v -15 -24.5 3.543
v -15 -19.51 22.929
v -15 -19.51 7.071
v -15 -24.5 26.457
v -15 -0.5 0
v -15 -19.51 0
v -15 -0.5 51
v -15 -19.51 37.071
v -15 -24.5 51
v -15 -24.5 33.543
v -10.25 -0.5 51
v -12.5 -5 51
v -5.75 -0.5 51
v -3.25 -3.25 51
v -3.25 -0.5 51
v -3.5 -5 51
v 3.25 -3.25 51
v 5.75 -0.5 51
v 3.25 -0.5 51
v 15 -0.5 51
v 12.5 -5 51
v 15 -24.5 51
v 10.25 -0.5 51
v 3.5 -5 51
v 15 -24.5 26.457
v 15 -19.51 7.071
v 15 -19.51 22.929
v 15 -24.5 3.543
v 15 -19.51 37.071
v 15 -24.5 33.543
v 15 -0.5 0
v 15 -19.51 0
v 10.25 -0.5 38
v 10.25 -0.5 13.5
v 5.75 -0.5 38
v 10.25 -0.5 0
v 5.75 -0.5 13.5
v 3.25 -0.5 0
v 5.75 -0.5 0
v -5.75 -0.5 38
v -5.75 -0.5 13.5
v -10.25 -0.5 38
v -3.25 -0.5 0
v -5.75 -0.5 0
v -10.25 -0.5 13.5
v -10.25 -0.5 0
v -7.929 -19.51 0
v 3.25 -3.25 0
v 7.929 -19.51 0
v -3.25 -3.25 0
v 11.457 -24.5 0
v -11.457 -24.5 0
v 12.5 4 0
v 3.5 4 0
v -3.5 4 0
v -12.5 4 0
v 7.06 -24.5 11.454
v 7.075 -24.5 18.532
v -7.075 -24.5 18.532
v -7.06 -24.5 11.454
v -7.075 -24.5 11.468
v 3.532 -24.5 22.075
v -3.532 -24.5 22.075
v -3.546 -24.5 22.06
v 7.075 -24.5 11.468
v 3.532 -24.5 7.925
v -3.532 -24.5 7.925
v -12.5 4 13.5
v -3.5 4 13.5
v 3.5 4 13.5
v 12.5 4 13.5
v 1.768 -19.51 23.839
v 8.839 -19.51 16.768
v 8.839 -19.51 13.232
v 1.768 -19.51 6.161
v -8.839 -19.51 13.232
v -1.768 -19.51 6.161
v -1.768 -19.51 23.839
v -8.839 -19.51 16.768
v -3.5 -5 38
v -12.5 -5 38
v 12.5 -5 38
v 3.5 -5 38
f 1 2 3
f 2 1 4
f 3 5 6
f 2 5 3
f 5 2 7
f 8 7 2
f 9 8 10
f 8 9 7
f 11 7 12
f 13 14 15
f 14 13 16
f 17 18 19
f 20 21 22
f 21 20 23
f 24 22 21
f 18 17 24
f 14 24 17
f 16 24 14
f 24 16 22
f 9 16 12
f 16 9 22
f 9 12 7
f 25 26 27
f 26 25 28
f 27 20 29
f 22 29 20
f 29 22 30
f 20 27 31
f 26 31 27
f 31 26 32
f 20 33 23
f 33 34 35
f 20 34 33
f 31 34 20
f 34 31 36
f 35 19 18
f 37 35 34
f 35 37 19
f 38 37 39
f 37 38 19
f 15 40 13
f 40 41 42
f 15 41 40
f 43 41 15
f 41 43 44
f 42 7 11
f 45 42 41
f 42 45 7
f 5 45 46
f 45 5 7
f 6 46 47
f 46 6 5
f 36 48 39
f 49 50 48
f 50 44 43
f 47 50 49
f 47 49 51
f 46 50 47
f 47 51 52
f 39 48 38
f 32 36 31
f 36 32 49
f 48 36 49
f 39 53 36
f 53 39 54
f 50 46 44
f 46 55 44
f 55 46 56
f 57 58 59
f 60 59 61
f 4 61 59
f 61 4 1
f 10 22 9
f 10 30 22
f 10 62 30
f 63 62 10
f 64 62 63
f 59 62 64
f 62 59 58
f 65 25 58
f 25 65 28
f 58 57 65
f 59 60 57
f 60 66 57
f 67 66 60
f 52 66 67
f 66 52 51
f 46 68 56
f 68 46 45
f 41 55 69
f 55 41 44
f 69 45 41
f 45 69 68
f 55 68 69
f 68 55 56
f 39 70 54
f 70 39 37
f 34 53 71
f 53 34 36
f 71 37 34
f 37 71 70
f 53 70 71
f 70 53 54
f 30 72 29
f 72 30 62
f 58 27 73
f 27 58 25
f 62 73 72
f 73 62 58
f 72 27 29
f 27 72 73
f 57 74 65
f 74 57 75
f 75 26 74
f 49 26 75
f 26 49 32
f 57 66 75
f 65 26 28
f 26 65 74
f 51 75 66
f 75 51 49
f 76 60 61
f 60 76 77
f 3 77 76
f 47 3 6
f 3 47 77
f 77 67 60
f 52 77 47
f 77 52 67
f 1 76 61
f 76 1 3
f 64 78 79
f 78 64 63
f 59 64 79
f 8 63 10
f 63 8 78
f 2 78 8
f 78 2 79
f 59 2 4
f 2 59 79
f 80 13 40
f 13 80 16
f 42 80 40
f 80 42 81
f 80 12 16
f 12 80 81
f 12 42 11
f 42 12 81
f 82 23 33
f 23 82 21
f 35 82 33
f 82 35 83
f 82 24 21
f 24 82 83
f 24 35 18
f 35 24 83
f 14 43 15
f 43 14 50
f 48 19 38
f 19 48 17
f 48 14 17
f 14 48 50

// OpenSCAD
// file: include.scad
//////////////////      END SECTION       //////////////////

	module added_pins(){
		difference(){
			union(){
				translate([30/(15/4),obj_leg*leg_length,30/(15/4)]) pin();
				translate([30/(15/4)+14.5,obj_leg*leg_length,30/(15/4)+14]) pin();
			}
			union(){
							translate([30/(15/4)+13.5,obj_leg*leg_length-20,30/(15/4)+5])cube(size=[2,40,15]);
							translate([30/(15/4)+7.5,obj_leg*leg_length-20,30/(15/4)+15])rotate([0,90,0]) cube(size=[2,40,15]);	

							translate([30/(15/4)-1,obj_leg*leg_length-20,30/(15/4)-8])cube(size=[2,40,15]);
							translate([30/(15/4)-10,obj_leg*leg_length-20,30/(15/4)+1])rotate([0,90,0]) cube(size=[2,40,15]);
			}
		}
	}
	module taken_pins() {
		translate([30/(15/4)+14,obj_leg*leg_length-10,30/(15/4)]) mirror_pin();
		translate([30/(15/4),obj_leg*leg_length-10,30/(15/4)+15]) mirror_pin();
	}


//////////////////      OTHER STUFF       //////////////////

	module holes() {
		rotate([0,0,90]) for(y=[0:other_holes])
		translate([obj_leg+y*15,-15.5,7.5]) union() {
			translate([7.5,0,15]) hole_up();
			hole_down();
		}
	}
	module extend_holes() {
	module top(){
		rotate([0,0,90]) for(y=[0:other_holes+1])
		translate([(30/4)+y*15,-15.5,7.5]) union() {
			translate([7.5,0,15]) hole_up();
		}
	}
	module bottom(){
		rotate([0,0,90]) for(y=[0:other_holes+2])
		translate([(30/4)+y*15,-15.5,7.5]) union() {
			hole_down();
		
}
	}
	union(){
		top();
		bottom();
	}
	}

	module hole() {
		union() {
			rotate([90, 90, 0]) cylinder(h=40, d=hole_pin_diameter, center=true);
			translate([0,7.5,0]) sphere(d=hole_ball_size);
			translate([0,-6,0]) sphere(d=hole_ball_size);
		}
	}
	module hole_up() {
		union() {
			rotate([90, 90, 0]) cylinder(h=40, d=hole_pin_diameter, center=true);
			translate([0,7.5,10]) cylinder(h=hole_pin_height, d=hole_pin_diameter, center=true);
			translate([0,-6,10]) cylinder(h=hole_pin_height, d=hole_pin_diameter, center=true);
			translate([0,7.5,0]) sphere(d=hole_ball_size);
			translate([0,-6,0]) sphere(d=hole_ball_size);
		}
	}
	module hole_down() {
		union() {
			rotate([90, 90, 0]) cylinder(h=40, d=hole_pin_diameter, center=true);
			translate([0,7.5,-10]) cylinder(h=hole_pin_height, d=hole_pin_diameter, center=true);
			translate([0,-6,-10]) cylinder(h=hole_pin_height, d=hole_pin_diameter, center=true);
			translate([0,7.5,0]) sphere(d=hole_ball_size);
			translate([0,-6,0]) sphere(d=hole_ball_size);
		}
	}
	module pin() {
		union() {
			rotate([90, 90, 0]) cylinder(h=pin_height, d=pin_diameter, center=true);
			translate([0,7.5,0]) sphere(d=ball_size);
		}
	}

	module mirror_pin() {
		rotate([90, 90, 0]) cylinder(h=hole_pin_height+small_number, d=hole_pin_diameter, center=true);
		translate([0,-(pin_height-(ball_size/2)),0]) sphere(d=ball_size);
	}


//////////////////      SOME RACK AND Z THINGS       //////////////////

module z_holes() {
    rotate([0,-90,0]) for(z=[0:z_hole_number])
    translate([22.5+z*15,16,-12])
        hole();
}

module pin_cuts() {
	union(){
		cube(size=[2,10,40], center=true);
		rotate([0,0,90]) cube(size=[2,10,40], center=true);
	}
}
module pin_uncut() {
	union(){
		rotate([0, 0, 90]) cylinder(h=hole_pin_height, d=hole_pin_diameter, center=true);
		translate([0,0,10]) sphere(d=ball_hole);
	}
}


module pin_out() {
	union(){
		rotate([0, 0, 90]) cylinder(h=pin_height, d=pin_diameter, center=true);
		translate([0,0,10]) sphere(d= ball_size);
	}
}


module pins_z(){
	difference() {
		pin_out();
		pin_cuts();
	}
}
//////////////////      RACK AND SLIDE     ///////////////////

module straight_pins() {
	for(z=[0:((((obj_leg*leg_length)*2)-(obj_leg*2))/3)/14.5]) rotate([-90,0,0]) translate([z*15,30/(15/4),14]) pins_z();
	for(z=[0:((((obj_leg*leg_length)*2)-(obj_leg*2))/3)/14.5]) rotate([-90,0,0]) translate([z*15,30/(15/4)-14,14]) pins_z();
}
module stagger_pins() {
	for(z=[0:((((obj_leg*leg_length)*2)-(obj_leg*2))/3)/14.5]) rotate([-90,0,0]) translate([z*15,30/(15/4),14]) pins_z();
	for(z=[0:((((obj_leg*leg_length)*2)-(obj_leg*2))/3)/14.5]) rotate([-90,0,0]) translate([z*15+7,30/(15/4)-14,14]) pins_z();
}


//////////////////      DOVE TAIL       //////////////////

module male_dovetail(height) {
	dovetail_3d(max_width,min_width,depth,height);
}

module dovetail_3d(max_width=11, min_width=5, depth=5, height=30) {
	linear_extrude(height=height, convexity=2)
		dovetail_2d(max_width,min_width,depth);
}

module dovetail_2d(max_width=11, min_width=5, depth=5) {
	angle=atan((max_width/2-min_width/2)/depth);
	echo("angle: ", angle);
	polygon(paths=[[0,1,2,3,0]], points=[[-min_width/2,0], [-max_width/2,depth], [max_width/2, depth], [min_width/2,0]]);
}

//bow tie
	module tie_end(height){
				rotate([0,0,0]) translate([0,-0.01,((obj_leg/2)/2)]) male_dovetail(height);
				rotate([0,90,0]) translate([0,-0.01,((obj_leg/2)/2)]) male_dovetail(height);
				rotate([0,180,0]) translate([0,-0.01,((obj_leg/2)/2)]) male_dovetail(height);
				rotate([0,-90,0]) translate([0,-0.01,((obj_leg/2)/2)]) male_dovetail(height);
	}

module bow_support(){
	difference(){
		intersection(){
			translate([-15,0,-15]) cube([30,9,30]);
			scale([1.05,1.05,1.05]) rotate([0,45,0]) tie_end();
		}
		cube([29.2,29.2,29.2], center=true);
	}
}

	module wrap(){
		depth = 30;
				translate([-15,30,15]) rotate([90,180,90]) male_dovetail(height=depth);
				rotate([0,90,0]) translate([-15,30,15]) rotate([90,180,90]) male_dovetail(height=depth);
				rotate([0,180,0]) translate([-15,30,15]) rotate([90,180,90]) male_dovetail(height=depth);
				rotate([0,-90,0]) translate([-15,30,15]) rotate([90,180,90]) male_dovetail(height=depth);
	}
// file: globals.scad
/*
Most things in this file is represented as one millimeter, so keep that in mind while changing things.
Some of the setting are not mm but at variables that you can set, such as 2*x=2x and you are setting what x is.
I will try to specify when things are variables and not exact measurements.
*/

obj_leg = 30;
leg_length = 5.5;
small_number = 0.001;
metal_core_rode_global = 5;


///////////////// number of holes /////////////////////
z_hole_number = 8;
other_holes = 8;

///////////////// Pins /////////////////////

//pins that poke out
ball_size = 10;
pin_height = 20;
pin_diameter = 6;


//holes
hole_ball_size = ball_size;
hole_pin_height = pin_height;
hole_pin_diameter = pin_diameter;

///////////////// Z THINGS /////////////////////

berring_slot_width = 7.5;
berring_slot_depth = 6.5;
metal_core_rode = 5;

///////////////// X THINGS /////////////////////

//male dove tails
max_width=10;
min_width=5;
depth=5;
height=obj_leg/2;

//female dove tails, this is found on the y mounts
girl_max_width=11;
girl_min_width=5;
girl_depth=5;
girl_height=obj_leg;


///////////////// Y THINGS /////////////////////
/*
The Y is so normal that all of those global variables at the top should change all of the setting in it, this section is set her incase there are variables set in the future development of this project.
*/
// main file
include <globals.scad>;
include <include.scad>;

tail_depth = 55;
tail_depth_2 = -10;
thickness = 24;

head_width = 6.5;
module y_mount_added(){
	translate([0,-15+6-3.5,51/2]) cube([30,thickness,51], center=true);
    
    translate([-8,-12.5+thickness/2,-55+tail_depth]) scale([.9,.9,.9]) male_dovetail(height=15);
	translate([8,-12.5+thickness/2,-55+tail_depth]) scale([.9,.9,.9]) male_dovetail(height=15);
    

}

module y_mount_taken(){
	translate([0,-thickness/2-12.5,15]) rotate([0,45,0]) tie_end();
    
	rotate([180,0,0]) translate([-8,12.5-thickness/2,-55+tail_depth_2]) scale([.9,.9,.9]) male_dovetail(height=30);
	rotate([180,0,0]) translate([8,12.5-thickness/2,-55+tail_depth_2]) scale([.9,.9,.9]) male_dovetail(height=30);

	cube([head_width,head_width,51*2], center=true);
}


difference(){
	y_mount_added();
	y_mount_taken();
}
